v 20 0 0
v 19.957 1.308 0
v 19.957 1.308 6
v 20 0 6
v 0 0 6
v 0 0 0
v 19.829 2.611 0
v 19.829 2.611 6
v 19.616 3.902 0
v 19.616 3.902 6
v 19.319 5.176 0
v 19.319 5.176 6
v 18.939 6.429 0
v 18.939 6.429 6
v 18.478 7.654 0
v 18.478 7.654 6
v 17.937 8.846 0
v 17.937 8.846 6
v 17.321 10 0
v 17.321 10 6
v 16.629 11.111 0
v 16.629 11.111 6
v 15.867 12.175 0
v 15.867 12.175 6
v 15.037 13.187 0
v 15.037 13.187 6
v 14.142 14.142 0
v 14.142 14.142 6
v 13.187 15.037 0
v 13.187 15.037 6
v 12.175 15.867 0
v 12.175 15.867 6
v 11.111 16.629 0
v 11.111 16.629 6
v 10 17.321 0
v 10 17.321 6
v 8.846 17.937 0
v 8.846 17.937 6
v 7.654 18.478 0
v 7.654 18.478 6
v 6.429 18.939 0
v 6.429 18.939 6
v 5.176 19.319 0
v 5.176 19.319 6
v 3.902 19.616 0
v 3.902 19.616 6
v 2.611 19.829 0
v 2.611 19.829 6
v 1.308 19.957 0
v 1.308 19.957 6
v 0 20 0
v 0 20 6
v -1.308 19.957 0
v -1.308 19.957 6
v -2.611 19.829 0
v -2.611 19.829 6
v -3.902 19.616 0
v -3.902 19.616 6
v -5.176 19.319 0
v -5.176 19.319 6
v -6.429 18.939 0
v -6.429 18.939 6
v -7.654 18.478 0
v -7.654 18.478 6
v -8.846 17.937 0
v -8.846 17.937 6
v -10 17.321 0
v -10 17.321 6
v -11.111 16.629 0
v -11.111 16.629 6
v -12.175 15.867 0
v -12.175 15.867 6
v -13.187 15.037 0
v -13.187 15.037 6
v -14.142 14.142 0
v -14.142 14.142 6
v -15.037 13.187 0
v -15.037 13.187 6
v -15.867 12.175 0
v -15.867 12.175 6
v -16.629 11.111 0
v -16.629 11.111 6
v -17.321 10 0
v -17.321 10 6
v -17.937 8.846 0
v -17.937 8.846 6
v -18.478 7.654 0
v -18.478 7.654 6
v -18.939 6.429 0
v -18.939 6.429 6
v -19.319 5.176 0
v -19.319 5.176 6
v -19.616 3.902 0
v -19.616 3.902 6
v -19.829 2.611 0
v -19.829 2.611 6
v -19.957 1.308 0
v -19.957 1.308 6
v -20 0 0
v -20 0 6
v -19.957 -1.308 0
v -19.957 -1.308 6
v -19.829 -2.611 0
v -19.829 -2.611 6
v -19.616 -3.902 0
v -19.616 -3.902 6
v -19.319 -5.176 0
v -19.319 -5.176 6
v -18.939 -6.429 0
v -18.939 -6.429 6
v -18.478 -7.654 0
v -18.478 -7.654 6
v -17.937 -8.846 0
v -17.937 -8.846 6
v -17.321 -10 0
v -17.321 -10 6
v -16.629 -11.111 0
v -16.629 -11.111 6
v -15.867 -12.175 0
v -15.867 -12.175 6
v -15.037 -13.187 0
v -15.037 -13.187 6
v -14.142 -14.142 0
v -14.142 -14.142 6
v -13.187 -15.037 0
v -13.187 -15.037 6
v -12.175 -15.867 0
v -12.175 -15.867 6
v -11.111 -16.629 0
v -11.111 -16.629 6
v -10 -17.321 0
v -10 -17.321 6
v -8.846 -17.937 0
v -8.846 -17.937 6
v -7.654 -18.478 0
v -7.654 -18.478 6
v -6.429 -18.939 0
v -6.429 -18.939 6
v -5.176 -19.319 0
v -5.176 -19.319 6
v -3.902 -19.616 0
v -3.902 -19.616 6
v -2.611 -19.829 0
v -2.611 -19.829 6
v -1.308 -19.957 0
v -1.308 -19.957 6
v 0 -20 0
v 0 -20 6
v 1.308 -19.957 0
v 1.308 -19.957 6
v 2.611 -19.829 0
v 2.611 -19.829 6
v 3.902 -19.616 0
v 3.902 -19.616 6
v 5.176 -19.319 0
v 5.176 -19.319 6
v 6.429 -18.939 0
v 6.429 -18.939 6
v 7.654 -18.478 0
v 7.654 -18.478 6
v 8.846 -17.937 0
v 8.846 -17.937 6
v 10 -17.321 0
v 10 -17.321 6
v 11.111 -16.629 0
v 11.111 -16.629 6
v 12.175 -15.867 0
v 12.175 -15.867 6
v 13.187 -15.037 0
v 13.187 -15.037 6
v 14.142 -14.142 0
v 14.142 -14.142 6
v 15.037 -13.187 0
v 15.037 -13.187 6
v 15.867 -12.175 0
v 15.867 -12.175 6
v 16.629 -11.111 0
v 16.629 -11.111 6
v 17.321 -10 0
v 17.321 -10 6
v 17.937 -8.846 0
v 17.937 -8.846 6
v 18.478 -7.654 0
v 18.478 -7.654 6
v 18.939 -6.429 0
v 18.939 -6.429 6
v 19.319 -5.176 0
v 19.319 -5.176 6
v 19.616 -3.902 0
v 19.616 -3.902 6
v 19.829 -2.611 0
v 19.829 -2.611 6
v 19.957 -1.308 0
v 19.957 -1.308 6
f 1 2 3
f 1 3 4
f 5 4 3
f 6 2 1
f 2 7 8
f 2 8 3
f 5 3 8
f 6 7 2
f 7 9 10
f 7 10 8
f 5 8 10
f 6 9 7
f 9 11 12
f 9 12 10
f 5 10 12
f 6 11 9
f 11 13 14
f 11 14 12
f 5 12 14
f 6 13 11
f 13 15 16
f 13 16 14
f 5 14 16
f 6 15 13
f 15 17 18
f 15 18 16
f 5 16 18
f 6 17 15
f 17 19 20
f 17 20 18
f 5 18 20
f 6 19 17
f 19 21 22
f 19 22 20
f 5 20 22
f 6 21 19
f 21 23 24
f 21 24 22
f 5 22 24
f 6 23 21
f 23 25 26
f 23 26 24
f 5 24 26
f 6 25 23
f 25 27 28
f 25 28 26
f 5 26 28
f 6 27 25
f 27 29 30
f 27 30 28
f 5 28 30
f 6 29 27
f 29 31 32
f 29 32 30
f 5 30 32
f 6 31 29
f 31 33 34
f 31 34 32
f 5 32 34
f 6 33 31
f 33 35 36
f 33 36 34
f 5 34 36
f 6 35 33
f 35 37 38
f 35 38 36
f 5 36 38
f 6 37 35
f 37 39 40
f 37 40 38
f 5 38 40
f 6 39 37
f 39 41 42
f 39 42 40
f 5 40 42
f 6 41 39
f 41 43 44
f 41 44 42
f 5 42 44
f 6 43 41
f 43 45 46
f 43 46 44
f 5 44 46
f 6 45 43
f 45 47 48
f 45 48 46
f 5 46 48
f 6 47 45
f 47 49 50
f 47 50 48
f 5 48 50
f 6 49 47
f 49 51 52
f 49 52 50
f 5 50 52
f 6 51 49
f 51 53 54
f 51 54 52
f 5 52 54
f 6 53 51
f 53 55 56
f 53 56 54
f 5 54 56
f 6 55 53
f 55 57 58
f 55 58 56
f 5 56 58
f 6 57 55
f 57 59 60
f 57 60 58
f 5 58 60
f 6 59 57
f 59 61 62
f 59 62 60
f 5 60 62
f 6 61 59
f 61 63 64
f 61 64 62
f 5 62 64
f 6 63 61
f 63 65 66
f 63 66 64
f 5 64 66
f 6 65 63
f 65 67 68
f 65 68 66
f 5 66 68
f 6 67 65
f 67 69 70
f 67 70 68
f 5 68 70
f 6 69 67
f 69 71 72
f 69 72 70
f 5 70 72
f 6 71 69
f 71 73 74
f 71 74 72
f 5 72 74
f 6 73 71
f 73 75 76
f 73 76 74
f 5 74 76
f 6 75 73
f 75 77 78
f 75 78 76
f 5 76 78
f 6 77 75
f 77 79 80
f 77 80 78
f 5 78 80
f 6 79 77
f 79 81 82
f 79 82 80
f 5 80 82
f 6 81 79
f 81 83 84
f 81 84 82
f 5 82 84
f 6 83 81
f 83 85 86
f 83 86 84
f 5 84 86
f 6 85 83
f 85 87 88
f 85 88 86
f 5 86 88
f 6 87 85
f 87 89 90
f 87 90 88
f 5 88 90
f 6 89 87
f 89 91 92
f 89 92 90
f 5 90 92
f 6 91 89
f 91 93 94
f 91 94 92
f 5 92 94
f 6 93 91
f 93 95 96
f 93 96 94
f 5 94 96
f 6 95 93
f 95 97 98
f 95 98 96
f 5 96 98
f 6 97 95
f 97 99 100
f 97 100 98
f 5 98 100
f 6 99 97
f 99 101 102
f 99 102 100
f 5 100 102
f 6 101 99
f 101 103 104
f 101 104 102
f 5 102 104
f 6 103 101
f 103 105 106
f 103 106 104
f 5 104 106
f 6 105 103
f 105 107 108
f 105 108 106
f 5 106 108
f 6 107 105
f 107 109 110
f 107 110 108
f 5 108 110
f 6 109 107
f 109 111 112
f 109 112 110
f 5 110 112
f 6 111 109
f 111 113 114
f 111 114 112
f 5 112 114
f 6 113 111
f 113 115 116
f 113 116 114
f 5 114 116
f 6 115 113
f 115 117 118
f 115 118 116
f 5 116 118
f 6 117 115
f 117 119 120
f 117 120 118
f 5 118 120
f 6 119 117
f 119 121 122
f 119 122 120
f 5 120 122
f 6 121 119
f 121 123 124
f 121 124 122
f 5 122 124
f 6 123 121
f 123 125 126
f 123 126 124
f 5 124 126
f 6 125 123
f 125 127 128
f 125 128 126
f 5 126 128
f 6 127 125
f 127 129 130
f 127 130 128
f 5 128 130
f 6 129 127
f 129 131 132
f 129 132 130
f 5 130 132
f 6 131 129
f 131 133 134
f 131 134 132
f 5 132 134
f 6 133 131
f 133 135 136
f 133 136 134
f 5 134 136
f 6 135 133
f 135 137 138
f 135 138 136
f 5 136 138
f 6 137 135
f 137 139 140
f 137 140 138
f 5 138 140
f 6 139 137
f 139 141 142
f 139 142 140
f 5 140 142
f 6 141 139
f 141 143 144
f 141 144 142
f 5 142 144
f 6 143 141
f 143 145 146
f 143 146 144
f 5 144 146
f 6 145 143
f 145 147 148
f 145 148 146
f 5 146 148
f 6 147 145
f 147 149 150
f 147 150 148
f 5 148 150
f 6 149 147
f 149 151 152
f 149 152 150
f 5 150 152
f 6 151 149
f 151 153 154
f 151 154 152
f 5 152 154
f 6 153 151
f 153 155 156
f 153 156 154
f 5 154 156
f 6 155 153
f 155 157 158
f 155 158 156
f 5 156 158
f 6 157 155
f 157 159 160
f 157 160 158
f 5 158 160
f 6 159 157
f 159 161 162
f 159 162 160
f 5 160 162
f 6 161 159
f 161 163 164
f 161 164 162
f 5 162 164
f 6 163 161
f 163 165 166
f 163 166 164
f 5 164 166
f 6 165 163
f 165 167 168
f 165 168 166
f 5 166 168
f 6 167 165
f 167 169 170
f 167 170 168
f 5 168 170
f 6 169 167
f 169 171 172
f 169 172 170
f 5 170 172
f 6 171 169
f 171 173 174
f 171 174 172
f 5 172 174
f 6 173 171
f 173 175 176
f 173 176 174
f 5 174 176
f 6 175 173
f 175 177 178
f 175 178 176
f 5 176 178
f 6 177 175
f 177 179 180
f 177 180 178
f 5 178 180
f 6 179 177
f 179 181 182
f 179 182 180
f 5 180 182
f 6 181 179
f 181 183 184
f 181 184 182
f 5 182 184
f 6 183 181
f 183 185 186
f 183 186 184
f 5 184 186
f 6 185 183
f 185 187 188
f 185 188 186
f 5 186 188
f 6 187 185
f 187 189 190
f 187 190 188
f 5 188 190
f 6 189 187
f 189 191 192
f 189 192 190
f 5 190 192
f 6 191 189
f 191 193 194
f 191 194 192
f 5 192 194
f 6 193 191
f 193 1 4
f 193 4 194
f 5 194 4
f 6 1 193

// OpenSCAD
// Original MechIntel educational model. CC0-1.0. Units: mm.
// Not a standardized or load-rated component.
$fn=96;
outer_diameter=40;
inner_diameter=0;
height=6;
difference(){ cylinder(d=outer_diameter,h=height); if(inner_diameter>0) translate([0,0,-1]) cylinder(d=inner_diameter,h=height+2); }
